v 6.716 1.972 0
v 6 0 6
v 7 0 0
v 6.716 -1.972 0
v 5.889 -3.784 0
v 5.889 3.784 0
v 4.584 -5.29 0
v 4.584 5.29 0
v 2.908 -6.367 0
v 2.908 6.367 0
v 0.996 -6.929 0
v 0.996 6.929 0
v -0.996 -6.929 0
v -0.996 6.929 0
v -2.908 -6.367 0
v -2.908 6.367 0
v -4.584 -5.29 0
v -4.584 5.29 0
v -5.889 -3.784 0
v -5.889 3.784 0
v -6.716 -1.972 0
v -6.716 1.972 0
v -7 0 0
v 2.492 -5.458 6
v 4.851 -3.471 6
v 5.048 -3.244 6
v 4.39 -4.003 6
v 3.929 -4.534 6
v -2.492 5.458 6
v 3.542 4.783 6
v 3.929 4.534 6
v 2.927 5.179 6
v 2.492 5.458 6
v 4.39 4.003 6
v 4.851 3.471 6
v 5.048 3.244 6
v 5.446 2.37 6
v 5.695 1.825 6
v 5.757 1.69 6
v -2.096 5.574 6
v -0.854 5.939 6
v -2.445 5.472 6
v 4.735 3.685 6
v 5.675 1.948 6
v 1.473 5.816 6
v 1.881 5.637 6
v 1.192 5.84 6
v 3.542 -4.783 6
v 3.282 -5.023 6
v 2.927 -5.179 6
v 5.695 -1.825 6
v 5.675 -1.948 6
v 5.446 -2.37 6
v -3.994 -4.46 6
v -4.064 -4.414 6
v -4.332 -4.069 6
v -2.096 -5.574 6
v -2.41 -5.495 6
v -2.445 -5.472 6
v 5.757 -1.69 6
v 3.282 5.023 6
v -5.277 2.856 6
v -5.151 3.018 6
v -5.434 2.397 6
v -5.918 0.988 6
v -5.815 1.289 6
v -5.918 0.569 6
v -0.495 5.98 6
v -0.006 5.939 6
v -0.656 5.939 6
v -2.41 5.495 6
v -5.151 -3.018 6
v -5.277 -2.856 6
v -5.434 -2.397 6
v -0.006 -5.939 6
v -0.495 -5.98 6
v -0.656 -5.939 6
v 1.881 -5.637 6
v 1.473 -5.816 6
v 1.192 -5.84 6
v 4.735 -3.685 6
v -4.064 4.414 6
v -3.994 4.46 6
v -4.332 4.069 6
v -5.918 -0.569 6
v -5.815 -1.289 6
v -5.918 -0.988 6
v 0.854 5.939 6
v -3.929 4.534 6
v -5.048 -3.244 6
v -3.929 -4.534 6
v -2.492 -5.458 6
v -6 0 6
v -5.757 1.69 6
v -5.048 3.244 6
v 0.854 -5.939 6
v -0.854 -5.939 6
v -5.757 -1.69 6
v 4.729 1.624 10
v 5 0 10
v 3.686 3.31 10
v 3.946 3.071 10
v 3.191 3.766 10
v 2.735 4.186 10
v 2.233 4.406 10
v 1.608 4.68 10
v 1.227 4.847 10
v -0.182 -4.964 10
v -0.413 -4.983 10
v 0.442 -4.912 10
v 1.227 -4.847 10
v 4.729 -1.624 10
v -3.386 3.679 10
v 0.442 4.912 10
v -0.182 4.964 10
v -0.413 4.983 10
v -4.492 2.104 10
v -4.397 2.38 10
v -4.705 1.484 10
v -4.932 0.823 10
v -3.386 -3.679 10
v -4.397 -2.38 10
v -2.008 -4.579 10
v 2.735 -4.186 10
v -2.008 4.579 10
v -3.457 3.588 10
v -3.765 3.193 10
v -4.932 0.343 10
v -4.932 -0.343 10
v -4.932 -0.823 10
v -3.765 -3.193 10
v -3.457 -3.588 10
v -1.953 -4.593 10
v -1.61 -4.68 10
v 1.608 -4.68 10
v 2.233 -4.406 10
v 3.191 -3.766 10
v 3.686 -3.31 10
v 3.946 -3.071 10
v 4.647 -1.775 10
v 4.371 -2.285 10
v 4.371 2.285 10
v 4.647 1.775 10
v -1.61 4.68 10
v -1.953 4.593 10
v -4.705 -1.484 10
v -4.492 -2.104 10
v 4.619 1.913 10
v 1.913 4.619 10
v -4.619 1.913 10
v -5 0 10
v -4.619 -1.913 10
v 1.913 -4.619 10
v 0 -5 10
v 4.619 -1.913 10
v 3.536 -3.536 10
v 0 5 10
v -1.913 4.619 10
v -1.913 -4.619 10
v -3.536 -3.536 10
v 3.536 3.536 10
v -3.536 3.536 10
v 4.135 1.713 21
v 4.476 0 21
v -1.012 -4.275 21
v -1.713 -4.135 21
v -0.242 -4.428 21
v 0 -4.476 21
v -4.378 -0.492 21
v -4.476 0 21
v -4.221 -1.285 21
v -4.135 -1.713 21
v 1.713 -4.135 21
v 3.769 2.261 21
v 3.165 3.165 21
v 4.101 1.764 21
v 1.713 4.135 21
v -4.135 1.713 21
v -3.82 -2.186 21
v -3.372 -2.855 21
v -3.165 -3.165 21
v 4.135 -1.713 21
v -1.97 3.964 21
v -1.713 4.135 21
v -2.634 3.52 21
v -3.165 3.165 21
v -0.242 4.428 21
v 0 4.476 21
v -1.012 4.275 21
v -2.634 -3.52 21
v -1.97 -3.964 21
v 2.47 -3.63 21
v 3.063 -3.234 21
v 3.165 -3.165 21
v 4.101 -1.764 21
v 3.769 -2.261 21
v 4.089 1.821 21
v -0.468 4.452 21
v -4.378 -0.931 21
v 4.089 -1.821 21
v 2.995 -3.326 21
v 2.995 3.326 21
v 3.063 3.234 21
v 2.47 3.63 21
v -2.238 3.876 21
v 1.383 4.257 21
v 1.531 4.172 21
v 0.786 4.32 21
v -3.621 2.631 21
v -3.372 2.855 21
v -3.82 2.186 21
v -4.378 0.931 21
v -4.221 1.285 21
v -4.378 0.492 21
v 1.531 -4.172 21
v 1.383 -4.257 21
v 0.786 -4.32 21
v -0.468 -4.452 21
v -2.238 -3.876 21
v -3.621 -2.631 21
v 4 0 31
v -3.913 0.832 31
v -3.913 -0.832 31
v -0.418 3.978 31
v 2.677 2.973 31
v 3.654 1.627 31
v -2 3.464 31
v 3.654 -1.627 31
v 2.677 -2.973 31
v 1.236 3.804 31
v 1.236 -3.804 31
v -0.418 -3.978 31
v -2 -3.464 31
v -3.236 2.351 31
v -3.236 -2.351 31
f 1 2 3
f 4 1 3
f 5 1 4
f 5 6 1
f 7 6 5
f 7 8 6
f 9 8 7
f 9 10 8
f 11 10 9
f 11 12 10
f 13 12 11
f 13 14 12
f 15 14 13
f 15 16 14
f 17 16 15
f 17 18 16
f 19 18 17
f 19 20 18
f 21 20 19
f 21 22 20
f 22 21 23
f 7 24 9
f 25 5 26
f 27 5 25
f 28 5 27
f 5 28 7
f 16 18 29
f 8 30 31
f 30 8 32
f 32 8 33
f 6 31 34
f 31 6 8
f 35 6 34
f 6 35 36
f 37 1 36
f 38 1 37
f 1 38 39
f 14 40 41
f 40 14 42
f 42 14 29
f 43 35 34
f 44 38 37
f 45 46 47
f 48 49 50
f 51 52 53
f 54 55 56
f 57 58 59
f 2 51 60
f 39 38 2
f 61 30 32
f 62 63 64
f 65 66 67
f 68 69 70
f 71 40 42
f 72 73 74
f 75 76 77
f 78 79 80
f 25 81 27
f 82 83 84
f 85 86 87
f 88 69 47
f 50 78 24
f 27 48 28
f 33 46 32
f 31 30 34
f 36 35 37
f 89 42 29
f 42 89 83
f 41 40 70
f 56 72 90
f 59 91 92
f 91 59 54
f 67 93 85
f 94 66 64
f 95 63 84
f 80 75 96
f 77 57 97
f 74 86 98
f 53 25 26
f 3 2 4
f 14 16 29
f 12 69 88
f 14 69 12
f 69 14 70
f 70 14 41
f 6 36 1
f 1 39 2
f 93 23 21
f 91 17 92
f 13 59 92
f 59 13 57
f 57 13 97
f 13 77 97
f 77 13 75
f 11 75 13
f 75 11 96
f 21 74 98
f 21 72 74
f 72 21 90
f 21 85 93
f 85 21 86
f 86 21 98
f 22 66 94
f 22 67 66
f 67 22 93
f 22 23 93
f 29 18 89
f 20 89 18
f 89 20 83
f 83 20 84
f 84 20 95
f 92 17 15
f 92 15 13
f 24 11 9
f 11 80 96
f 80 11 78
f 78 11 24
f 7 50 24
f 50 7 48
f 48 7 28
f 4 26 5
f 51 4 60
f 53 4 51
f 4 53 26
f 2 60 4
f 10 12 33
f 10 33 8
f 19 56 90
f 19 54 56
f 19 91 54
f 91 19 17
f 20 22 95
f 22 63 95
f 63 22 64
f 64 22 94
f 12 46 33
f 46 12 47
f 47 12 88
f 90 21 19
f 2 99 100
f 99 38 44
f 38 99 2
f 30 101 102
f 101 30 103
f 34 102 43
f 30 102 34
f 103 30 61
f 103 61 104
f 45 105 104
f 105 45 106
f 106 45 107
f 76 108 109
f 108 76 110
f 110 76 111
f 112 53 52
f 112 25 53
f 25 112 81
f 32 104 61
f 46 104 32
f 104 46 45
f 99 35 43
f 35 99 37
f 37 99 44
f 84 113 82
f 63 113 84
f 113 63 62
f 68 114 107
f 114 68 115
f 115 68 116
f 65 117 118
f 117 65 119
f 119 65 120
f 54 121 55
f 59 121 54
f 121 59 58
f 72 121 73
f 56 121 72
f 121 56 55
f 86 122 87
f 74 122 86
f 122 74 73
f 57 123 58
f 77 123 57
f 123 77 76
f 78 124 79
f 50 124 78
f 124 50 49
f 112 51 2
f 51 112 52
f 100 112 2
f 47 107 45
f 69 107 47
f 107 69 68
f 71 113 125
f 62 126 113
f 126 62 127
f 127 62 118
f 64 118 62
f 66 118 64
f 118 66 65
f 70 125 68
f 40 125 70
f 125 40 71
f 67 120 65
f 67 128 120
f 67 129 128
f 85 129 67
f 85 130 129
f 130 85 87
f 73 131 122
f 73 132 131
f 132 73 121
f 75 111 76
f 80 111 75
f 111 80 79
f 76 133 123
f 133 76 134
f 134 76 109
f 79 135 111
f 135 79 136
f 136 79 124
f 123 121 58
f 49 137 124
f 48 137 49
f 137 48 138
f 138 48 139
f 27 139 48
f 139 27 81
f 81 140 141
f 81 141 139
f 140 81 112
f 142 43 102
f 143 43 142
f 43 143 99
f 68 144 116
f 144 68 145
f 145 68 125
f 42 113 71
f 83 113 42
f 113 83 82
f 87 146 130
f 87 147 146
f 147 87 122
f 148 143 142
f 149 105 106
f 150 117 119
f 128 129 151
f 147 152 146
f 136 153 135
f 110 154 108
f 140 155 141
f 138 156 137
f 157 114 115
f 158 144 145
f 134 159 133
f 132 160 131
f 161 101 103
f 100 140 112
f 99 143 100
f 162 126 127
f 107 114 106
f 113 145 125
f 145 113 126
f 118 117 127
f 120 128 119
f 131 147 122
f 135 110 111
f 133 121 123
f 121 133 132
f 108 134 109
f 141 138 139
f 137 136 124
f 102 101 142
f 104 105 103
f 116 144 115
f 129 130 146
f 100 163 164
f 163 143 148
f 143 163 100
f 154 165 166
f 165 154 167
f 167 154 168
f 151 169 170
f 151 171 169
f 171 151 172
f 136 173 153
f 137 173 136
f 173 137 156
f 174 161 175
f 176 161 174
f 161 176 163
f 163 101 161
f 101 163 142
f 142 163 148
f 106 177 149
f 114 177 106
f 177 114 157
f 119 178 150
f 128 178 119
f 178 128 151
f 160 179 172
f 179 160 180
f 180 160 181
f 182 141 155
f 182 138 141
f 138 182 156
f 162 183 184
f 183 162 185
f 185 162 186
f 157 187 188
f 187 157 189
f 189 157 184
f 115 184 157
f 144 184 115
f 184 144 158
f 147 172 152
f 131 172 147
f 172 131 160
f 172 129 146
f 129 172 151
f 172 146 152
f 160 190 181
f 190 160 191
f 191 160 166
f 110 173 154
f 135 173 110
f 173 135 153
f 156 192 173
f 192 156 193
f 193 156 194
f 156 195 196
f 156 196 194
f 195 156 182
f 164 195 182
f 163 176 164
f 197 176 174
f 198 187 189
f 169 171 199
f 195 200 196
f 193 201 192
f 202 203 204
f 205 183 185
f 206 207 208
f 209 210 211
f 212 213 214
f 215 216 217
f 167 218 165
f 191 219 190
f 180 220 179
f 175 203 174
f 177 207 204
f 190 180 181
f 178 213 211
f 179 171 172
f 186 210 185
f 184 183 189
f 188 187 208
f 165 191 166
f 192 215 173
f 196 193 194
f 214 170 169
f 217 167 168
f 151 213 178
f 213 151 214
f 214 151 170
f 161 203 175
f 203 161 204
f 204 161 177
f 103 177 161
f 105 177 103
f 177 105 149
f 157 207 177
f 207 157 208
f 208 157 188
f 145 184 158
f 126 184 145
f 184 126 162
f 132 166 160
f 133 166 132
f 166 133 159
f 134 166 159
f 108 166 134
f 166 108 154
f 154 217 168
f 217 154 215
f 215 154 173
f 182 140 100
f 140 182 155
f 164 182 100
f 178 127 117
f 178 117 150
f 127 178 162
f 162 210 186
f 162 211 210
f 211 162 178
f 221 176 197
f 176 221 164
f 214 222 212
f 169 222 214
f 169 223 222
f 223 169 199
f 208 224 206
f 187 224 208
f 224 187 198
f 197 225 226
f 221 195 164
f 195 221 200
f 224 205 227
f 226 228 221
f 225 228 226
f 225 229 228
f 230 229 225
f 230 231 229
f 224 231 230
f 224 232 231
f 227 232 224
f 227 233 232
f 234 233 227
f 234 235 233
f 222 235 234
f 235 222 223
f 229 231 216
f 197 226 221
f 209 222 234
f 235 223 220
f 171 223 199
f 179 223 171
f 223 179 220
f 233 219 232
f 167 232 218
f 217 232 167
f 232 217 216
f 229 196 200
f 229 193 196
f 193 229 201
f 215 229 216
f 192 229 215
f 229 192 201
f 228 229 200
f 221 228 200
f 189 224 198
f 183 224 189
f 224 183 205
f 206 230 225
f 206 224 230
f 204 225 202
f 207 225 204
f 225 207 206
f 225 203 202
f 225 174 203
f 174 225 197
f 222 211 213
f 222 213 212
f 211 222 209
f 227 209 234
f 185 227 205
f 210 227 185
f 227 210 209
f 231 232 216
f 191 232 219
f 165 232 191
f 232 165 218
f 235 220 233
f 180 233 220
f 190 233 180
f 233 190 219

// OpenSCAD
module lamp(r_top, r_lamp, r_middle, r_base, h_top, h_lamp, h_base_top, h_base_bottom) {
    
    // Poprawiona formuła r_upper_lamp
    r_upper_lamp = r_top+(((r_lamp - r_top)*h_top) / (h_lamp + h_top));
    
    // Podstawa
    cylinder(h_base_bottom, r1=r_base, r2=r_middle);

    // Górna część podstawy
    translate([0,0,h_base_bottom])
    cylinder(h_base_top, r1=r_middle, r2=r_lamp);

    // Główna część lampy
    translate([0,0,h_base_bottom + h_base_top])
    cylinder(h_lamp, r1=r_lamp, r2=r_upper_lamp);

    // Górna część lampy
    translate([0,0,h_base_bottom + h_base_top + h_lamp])
    cylinder(h_top, r1=r_upper_lamp, r2=r_top);
}

lamp(
    r_top = 4,
    r_lamp = 5,
    r_middle = 6,
    r_base = 7,
    h_top = 10,
    h_lamp = 11,
    h_base_top = 4,
    h_base_bottom = 6
);
